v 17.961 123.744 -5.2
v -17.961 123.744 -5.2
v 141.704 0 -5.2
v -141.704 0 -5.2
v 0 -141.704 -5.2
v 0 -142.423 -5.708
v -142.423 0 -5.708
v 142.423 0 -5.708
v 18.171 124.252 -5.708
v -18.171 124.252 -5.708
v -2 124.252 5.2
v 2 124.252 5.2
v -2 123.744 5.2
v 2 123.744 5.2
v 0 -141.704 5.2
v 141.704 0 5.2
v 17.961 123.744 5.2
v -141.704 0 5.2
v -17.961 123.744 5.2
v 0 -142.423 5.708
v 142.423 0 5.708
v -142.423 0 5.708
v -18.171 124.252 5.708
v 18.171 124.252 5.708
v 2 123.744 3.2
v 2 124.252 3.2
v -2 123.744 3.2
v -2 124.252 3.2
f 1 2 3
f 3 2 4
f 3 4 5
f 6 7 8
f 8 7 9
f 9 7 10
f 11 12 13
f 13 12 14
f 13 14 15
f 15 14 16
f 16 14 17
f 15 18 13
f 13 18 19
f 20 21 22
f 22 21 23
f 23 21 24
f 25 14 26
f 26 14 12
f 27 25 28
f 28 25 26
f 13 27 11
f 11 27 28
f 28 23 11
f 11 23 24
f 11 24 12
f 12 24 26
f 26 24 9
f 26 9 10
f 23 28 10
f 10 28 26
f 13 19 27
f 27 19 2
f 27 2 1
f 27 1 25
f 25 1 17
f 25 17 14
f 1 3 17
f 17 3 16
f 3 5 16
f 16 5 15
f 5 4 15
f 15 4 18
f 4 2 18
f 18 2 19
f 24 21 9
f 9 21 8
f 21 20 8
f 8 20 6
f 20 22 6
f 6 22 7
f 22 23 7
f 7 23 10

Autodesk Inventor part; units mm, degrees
ref_plane "YZ Plane" through (0, 0, 0) normal (1, 0, 0) x (0, 1, 0)
ref_plane "XZ Plane" through (0, 0, 0) normal (0, 1, 0) x (-1, 0, 0)
ref_plane "XY Plane" through (0, 0, 0) normal (0, 0, 1) x (1, 0, 0)
sketch "Sketch1" plane through (0, 0, 0) normal (0, 0, 1) x (1, 0, 0)
  line L0 (-141.7042, 0) -> (-17.9605, 123.7437)
  line L1 (17.9605, 123.7437) -> (141.7042, 0)
  line L2 (141.7042, 0) -> (0, -141.7042)
  line L3 (0, -141.7042) -> (-141.7042, 0)
  line L4 (-141.7042, 0) -> (141.7042, 0) construction
  line L5 (0, 141.7042) -> (0, -141.7042) construction
  line L6 (17.9605, 123.7437) -> (-17.9605, 123.7437)
  line L7 (-18.1709, 124.2517) -> (18.1709, 124.2517)
  line L8 (18.1709, 124.2517) -> (142.4226, 0)
  line L9 (142.4226, 0) -> (0, -142.4226)
  line L10 (0, -142.4226) -> (-142.4226, 0)
  line L11 (-142.4226, 0) -> (-18.1709, 124.2517)
  point P0 (0, 0)
  dimension "d0" = 200.4
  dimension "d1" = 200.4
  dimension "d7" = 25.4
  dimension "d8" = 25.4
  dimension "d9" = 0.508
extrude "Extrusion1" add sketch "Sketch1" along normal mid plane 10.4
sketch "Sketch4" plane through (-18.1709, 124.2517, 5.2) normal (0, 1, 0) x (1, 0, 0)
  line L0 (20.1709, 0) -> (16.1709, 0)
  line L1 (16.1709, 0) -> (16.1709, 2)
  line L2 (16.1709, 2) -> (20.1709, 2)
  line L3 (20.1709, 2) -> (20.1709, 0)
  line L4 (36.3419, 0) -> (0, 0) projected
  point P0 (18.1709, 5.2)
  point P1 (18.1709, 0)
  dimension "d16" = 4
  dimension "d17" = 2
extrude "Extrusion3" cut sketch "Sketch4" against normal up to surface (0.508 mm away)
sketch "Sketch2" plane through (0, 0, 5.2) normal (0, 0, 1) x (1, 0, 0)
  line L0 (142.4226, 0) -> (0, -142.4226) projected
  line L1 (18.1709, 124.2517) -> (142.4226, 0) projected
  line L2 (-18.1709, 124.2517) -> (18.1709, 124.2517) projected
  line L3 (-142.4226, 0) -> (-18.1709, 124.2517) projected
  line L4 (0, -142.4226) -> (-142.4226, 0) projected
extrude "Extrusion2" add sketch "Sketch2" along normal blind 0.508
mirror "Mirror1" about plane through (0, 0, 0) normal (0, 0, 1) of "Extrusion2"
equation "\"d0\" = ScintillatorWidth + 2 * silveringThickness"
equation "\"d1\" = ScintillatorHeight + 2 * silveringThickness"
equation "\"d7\" = cornerChamfer"
equation "\"d8\" = d7"
equation "\"d9\" = rubberizedCoating"
equation "\"d3\" = ScintillatorThickness + 2 * silveringThickness"
equation "\"d5\" = rubberizedCoating"
equation "\"OpticalFiberClearence\" = 0.15"
equation "\"ScintillatorEdgeClearence\" = 3"
equation "\"ShallowTrackDepth\" = 1.3"
equation "\"DeepTrackDepth\" = 5.571"
equation "\"FiberEdgeOffsett\" = 5"
equation "\"LoopLargeTrackRatio\" = 1.5"
equation "\"FiberSensorClerence\" = 0.5"
equation "\"MountingScrewOffsett\" = 9"
equation "\"FoilThickness\" = 0.2"
equation "\"silveringThickness\" = 0.2"
equation "\"mppcMountDepth\" = 6.35"
equation "\"opticalFiberClearence\" = 0.071"
equation "\"scintillatorEdgeClearence\" = 3"
equation "\"fiberEdgeOffsett\" = 5"
equation "\"shallowTrackDepth\" = 1.142"
equation "\"deepTrackDepth\" = 5.571"
equation "\"opticalFiberDiameter\" = 1"
equation "\"mountingSpacing\" = 18"
equation "\"cornerChamfer\" = 25.4"
equation "\"SmallTrackDiameter\" = 175"
equation "\"ScintillatorWidth\" = 200"
equation "\"ScintillatorHeight\" = 200"
equation "\"ScintillatorThickness\" = 10"
properties part number "rubberizedCoating" material "Rubber"
